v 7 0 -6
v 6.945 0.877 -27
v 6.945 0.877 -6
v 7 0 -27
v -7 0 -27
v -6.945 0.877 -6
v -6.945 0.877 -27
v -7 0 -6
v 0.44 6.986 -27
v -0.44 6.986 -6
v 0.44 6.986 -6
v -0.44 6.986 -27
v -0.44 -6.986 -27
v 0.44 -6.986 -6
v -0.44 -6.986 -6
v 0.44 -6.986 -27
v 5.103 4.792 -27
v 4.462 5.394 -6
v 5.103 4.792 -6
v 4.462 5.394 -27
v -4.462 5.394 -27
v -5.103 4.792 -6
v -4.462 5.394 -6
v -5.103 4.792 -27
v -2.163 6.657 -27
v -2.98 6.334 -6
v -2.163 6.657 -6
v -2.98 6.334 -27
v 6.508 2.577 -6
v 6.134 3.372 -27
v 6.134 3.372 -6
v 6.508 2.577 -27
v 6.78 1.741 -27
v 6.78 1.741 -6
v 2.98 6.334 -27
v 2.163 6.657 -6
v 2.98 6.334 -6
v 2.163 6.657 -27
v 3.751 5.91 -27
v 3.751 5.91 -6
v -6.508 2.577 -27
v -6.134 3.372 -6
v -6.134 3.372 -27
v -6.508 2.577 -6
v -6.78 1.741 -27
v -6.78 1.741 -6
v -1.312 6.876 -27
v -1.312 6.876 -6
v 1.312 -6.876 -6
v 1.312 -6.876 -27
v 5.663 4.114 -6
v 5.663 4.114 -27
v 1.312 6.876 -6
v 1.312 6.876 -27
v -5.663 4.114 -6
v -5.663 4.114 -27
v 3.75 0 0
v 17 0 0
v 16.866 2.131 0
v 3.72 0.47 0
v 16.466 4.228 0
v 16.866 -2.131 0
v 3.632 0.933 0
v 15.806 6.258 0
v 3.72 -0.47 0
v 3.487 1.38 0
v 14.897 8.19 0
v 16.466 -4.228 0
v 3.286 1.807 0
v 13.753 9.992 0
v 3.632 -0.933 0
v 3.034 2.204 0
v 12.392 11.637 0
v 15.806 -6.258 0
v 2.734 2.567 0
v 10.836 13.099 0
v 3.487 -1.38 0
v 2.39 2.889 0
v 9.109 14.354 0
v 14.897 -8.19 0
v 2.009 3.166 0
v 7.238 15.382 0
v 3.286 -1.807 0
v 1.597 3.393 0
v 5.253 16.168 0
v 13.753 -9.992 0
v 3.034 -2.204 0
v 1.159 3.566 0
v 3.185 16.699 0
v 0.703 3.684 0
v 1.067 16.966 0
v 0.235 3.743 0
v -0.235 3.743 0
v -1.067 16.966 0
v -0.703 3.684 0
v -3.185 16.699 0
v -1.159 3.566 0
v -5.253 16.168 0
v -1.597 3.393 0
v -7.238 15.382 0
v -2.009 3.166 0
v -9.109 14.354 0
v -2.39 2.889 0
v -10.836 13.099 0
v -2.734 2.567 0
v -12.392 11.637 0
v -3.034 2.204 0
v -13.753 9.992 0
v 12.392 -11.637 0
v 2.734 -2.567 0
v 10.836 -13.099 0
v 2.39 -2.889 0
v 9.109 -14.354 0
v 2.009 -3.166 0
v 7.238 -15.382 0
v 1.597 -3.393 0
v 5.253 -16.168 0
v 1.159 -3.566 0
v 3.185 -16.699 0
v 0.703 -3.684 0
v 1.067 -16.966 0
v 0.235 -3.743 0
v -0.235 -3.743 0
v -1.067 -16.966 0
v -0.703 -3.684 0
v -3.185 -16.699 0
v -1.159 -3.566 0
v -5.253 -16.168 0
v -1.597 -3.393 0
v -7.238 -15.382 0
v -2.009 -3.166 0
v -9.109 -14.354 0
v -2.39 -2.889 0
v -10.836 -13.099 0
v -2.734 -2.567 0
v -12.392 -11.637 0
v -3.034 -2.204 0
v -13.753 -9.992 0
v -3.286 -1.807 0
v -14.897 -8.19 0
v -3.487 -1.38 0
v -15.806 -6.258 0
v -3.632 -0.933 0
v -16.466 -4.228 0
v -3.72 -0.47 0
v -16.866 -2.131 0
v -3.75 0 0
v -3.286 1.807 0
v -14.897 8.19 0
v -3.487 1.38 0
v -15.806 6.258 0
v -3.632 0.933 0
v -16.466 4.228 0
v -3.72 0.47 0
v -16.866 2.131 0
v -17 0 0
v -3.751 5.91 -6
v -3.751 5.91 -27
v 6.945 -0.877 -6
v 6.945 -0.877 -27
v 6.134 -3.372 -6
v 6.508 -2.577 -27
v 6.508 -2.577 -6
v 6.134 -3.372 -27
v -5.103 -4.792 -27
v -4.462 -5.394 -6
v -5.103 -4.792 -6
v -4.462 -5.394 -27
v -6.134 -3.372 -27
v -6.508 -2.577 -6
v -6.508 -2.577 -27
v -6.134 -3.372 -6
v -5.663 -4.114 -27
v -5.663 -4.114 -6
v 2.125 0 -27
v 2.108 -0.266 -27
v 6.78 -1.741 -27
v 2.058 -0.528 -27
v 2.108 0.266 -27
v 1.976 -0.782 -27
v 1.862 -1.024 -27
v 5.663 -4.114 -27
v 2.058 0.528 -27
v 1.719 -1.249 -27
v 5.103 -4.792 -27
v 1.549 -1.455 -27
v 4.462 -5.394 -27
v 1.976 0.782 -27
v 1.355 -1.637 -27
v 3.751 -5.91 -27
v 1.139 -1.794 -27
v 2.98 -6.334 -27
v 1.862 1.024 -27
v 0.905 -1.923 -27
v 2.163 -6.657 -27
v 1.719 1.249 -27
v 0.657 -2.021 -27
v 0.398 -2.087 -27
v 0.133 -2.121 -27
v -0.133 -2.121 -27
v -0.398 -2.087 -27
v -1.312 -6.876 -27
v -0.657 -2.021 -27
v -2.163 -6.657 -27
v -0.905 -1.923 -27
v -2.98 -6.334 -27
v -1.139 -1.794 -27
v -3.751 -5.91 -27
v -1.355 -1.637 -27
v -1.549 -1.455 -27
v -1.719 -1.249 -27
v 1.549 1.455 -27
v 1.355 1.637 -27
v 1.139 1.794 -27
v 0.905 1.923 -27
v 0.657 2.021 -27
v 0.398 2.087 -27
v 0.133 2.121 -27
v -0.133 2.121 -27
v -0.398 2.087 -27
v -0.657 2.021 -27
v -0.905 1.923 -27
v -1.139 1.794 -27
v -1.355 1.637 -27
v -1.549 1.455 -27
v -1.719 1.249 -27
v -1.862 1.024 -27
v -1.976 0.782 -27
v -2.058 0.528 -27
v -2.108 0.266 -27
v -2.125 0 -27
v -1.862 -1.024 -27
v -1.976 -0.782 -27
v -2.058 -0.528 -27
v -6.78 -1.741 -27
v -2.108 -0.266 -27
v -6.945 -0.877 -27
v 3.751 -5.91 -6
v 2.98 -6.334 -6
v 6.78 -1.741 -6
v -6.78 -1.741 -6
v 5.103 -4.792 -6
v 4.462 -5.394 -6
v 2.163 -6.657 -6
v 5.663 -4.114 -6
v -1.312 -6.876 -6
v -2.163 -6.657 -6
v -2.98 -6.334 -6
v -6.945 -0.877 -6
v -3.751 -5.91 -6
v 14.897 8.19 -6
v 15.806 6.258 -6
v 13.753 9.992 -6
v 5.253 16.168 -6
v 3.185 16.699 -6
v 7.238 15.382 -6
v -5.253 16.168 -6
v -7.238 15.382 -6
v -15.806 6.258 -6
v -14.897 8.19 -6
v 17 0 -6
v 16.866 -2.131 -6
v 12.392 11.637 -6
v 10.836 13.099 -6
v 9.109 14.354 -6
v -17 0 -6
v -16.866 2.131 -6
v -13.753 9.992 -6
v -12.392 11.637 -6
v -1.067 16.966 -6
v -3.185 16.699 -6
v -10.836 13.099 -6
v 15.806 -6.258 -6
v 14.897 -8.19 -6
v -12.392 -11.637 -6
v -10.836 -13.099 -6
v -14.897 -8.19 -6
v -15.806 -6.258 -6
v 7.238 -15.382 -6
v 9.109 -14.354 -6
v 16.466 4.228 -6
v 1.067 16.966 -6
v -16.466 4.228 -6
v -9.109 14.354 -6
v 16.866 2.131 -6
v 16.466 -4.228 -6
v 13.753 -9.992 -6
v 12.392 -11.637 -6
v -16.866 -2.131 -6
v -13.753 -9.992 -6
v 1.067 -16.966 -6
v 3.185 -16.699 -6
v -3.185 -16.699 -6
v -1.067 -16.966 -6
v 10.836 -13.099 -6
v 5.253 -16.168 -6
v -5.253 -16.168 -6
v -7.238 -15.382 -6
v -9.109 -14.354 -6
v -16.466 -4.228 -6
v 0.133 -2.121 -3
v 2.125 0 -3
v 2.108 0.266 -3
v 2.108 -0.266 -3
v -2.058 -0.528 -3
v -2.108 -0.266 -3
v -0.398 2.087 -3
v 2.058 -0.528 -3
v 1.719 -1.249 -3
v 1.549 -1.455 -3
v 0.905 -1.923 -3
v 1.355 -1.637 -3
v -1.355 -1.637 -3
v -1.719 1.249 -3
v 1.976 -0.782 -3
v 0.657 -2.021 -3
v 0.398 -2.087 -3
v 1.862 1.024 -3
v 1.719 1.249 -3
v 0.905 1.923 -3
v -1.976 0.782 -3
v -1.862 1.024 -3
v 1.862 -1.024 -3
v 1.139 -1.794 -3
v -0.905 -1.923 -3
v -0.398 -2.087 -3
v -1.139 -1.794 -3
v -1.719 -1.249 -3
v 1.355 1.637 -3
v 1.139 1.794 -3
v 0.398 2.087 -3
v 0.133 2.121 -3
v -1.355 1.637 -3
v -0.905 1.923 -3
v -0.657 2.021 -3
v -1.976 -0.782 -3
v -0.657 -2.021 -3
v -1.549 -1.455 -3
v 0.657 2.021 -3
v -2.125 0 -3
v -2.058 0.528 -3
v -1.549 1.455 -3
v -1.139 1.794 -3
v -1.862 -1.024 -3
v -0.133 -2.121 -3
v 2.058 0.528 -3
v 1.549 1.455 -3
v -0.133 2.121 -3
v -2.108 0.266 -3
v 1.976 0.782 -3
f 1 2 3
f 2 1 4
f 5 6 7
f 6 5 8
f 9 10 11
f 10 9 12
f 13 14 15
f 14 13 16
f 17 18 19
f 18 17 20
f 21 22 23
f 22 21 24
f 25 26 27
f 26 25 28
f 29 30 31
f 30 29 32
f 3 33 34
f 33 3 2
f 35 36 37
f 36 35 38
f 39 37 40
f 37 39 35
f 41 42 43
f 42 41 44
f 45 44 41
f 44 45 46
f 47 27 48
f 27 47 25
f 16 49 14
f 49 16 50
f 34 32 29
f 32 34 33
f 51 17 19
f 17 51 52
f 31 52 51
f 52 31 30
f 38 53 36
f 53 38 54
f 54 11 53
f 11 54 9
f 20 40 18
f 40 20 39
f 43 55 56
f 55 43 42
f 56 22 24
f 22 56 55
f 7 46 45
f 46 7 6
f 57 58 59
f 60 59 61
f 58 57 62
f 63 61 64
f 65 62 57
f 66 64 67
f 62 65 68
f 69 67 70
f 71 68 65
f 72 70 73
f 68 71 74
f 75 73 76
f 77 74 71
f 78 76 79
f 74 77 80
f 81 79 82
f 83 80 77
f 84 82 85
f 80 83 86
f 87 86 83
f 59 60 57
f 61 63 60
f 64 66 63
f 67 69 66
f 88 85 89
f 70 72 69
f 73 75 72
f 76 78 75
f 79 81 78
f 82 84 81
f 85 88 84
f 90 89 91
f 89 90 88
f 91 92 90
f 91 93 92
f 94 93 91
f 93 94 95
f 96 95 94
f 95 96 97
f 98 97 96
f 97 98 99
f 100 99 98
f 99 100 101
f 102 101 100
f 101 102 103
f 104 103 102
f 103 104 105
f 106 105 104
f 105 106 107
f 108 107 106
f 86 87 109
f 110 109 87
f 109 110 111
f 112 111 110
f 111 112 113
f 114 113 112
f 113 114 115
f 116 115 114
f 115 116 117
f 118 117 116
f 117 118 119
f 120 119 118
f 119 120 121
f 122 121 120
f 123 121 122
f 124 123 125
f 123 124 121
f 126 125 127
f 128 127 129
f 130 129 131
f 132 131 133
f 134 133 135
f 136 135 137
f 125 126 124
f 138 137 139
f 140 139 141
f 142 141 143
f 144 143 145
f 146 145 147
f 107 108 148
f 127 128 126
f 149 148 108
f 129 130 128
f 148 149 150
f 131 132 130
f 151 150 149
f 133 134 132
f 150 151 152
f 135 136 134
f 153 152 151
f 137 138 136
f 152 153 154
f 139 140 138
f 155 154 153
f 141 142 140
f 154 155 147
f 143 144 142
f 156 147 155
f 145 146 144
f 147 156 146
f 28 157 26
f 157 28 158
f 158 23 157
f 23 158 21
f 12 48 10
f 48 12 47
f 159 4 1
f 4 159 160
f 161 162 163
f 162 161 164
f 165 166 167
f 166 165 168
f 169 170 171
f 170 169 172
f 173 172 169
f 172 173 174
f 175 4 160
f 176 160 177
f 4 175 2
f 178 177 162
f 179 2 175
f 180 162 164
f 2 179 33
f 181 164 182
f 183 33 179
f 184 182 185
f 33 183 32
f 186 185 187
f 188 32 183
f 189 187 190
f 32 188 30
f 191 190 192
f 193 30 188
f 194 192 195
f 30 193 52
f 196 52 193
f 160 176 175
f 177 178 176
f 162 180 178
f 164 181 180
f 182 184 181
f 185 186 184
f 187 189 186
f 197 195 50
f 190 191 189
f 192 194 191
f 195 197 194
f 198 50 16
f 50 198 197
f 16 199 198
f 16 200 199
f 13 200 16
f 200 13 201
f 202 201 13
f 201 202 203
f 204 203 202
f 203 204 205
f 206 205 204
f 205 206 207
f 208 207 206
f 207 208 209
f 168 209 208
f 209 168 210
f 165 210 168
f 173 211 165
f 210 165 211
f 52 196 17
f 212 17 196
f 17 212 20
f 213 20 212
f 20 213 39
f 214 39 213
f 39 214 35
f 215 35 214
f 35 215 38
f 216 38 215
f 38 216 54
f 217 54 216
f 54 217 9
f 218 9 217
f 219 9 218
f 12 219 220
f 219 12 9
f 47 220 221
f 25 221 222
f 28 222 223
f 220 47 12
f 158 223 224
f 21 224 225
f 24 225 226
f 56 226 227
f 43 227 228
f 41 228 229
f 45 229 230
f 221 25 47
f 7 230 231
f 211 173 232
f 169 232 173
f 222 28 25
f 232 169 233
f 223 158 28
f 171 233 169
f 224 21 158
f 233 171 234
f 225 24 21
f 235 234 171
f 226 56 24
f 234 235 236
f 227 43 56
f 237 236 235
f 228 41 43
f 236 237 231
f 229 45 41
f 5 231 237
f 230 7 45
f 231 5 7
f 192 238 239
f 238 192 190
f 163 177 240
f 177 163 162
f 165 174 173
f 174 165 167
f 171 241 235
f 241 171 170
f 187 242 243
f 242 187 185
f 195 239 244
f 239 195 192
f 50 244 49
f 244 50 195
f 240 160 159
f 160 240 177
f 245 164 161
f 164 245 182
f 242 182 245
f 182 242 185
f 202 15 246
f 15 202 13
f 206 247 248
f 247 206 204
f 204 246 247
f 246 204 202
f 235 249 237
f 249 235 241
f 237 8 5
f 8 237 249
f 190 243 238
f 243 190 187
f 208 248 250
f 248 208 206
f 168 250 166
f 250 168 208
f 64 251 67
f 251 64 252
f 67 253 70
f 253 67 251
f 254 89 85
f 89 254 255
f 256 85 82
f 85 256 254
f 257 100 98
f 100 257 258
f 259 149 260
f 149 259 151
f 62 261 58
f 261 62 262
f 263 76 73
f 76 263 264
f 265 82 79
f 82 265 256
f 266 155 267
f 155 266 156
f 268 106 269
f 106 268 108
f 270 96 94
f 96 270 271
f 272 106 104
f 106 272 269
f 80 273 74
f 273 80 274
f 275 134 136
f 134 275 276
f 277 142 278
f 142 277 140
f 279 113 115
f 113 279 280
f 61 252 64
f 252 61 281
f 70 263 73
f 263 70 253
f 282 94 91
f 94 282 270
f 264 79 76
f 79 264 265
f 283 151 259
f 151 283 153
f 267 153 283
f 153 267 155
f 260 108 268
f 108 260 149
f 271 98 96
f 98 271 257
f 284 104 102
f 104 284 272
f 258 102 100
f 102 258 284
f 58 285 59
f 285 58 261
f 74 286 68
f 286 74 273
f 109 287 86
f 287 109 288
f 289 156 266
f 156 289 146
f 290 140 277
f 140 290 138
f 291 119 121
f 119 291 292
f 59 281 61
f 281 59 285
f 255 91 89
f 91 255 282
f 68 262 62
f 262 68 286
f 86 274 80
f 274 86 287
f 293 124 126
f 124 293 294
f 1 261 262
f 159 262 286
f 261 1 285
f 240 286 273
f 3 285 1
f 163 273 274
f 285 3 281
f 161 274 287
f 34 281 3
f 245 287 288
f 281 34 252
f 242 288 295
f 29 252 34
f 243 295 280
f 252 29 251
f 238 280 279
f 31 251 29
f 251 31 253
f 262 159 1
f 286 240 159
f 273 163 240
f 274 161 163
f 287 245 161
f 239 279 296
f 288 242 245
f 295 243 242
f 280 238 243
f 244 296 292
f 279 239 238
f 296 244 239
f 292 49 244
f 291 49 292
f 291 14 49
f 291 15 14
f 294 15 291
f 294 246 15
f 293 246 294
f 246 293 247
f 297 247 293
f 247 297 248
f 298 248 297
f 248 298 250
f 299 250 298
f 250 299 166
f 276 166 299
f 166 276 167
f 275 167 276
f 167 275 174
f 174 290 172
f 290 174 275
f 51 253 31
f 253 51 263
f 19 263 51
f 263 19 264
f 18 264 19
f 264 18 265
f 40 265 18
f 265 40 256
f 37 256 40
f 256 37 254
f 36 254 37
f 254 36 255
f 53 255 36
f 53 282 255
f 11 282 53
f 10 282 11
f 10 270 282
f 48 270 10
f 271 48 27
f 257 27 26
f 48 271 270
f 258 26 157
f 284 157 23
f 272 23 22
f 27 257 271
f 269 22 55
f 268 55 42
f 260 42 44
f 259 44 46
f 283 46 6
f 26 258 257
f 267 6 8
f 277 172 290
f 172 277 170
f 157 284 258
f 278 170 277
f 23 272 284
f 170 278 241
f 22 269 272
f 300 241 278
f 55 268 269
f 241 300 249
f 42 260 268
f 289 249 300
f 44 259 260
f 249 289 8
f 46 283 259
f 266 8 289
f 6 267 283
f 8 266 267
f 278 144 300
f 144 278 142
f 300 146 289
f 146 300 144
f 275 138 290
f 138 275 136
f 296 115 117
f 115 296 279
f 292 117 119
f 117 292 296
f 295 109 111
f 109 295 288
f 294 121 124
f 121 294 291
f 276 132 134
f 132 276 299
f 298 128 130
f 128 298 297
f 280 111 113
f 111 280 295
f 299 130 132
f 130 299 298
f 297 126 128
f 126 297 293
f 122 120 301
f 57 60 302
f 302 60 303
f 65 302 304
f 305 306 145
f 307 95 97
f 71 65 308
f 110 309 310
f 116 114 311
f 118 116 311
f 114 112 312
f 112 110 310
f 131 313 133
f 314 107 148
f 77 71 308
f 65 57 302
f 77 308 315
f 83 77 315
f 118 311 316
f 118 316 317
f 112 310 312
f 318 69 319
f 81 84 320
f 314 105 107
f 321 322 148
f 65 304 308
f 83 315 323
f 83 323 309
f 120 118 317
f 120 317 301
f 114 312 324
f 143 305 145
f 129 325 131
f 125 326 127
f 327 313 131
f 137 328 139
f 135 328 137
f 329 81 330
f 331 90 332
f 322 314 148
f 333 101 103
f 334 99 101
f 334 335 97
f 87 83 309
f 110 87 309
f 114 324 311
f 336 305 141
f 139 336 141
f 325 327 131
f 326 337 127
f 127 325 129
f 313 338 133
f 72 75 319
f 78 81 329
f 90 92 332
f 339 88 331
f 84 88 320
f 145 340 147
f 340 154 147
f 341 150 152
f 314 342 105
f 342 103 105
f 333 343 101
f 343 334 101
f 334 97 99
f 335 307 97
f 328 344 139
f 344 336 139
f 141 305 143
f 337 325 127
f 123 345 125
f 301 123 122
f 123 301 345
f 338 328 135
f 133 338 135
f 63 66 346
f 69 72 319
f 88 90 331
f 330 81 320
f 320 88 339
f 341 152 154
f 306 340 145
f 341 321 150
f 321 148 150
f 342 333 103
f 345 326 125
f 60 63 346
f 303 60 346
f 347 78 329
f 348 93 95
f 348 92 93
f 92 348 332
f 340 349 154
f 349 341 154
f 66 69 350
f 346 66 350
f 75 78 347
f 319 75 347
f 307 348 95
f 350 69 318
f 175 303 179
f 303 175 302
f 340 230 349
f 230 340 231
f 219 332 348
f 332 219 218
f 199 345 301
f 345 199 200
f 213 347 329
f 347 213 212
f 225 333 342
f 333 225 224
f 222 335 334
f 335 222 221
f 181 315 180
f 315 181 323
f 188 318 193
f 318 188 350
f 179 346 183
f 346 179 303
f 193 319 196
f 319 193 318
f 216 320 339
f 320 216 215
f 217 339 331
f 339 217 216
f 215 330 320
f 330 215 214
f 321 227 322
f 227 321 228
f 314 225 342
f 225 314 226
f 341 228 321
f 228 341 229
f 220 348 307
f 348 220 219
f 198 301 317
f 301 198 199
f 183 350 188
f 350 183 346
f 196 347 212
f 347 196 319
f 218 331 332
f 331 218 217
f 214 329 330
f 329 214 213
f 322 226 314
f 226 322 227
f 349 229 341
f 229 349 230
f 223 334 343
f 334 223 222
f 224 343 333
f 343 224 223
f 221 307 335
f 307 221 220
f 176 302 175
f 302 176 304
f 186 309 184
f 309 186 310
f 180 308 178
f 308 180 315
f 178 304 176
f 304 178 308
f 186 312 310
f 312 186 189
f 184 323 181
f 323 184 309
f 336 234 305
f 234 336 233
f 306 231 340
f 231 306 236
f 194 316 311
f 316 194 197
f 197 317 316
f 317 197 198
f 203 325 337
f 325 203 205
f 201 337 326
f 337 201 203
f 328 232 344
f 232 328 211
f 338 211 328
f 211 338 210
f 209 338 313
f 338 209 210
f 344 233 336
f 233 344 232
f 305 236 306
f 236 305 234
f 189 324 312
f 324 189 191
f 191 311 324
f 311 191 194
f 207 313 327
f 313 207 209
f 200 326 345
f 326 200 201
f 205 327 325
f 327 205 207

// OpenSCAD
$fn = 50;


difference() {
	union() {
		translate(v = [0, 0, -27.0000000000]) {
			cylinder(h = 27, r = 7.0000000000);
		}
		translate(v = [0, 0, -6.0000000000]) {
			cylinder(h = 6, r = 17.0000000000);
		}
	}
	union() {
		translate(v = [0, 0, 0]) {
			rotate(a = [0, 0, 0]) {
				difference() {
					union() {
						#translate(v = [0, 0, -27.0000000000]) {
							cylinder(h = 27, r = 2.0000000000);
						}
						#translate(v = [0, 0, -3]) {
							cylinder(h = 3, r = 7.0000000000, r1 = 2.1250000000, r2 = 3.7500000000);
						}
						#translate(v = [0, 0, -27.0000000000]) {
							cylinder(h = 27, r = 2.1250000000);
						}
						#translate(v = [0, 0, -27.0000000000]) {
							cylinder(h = 27, r = 2.0000000000);
						}
					}
					union();
				}
			}
		}
	}
}
